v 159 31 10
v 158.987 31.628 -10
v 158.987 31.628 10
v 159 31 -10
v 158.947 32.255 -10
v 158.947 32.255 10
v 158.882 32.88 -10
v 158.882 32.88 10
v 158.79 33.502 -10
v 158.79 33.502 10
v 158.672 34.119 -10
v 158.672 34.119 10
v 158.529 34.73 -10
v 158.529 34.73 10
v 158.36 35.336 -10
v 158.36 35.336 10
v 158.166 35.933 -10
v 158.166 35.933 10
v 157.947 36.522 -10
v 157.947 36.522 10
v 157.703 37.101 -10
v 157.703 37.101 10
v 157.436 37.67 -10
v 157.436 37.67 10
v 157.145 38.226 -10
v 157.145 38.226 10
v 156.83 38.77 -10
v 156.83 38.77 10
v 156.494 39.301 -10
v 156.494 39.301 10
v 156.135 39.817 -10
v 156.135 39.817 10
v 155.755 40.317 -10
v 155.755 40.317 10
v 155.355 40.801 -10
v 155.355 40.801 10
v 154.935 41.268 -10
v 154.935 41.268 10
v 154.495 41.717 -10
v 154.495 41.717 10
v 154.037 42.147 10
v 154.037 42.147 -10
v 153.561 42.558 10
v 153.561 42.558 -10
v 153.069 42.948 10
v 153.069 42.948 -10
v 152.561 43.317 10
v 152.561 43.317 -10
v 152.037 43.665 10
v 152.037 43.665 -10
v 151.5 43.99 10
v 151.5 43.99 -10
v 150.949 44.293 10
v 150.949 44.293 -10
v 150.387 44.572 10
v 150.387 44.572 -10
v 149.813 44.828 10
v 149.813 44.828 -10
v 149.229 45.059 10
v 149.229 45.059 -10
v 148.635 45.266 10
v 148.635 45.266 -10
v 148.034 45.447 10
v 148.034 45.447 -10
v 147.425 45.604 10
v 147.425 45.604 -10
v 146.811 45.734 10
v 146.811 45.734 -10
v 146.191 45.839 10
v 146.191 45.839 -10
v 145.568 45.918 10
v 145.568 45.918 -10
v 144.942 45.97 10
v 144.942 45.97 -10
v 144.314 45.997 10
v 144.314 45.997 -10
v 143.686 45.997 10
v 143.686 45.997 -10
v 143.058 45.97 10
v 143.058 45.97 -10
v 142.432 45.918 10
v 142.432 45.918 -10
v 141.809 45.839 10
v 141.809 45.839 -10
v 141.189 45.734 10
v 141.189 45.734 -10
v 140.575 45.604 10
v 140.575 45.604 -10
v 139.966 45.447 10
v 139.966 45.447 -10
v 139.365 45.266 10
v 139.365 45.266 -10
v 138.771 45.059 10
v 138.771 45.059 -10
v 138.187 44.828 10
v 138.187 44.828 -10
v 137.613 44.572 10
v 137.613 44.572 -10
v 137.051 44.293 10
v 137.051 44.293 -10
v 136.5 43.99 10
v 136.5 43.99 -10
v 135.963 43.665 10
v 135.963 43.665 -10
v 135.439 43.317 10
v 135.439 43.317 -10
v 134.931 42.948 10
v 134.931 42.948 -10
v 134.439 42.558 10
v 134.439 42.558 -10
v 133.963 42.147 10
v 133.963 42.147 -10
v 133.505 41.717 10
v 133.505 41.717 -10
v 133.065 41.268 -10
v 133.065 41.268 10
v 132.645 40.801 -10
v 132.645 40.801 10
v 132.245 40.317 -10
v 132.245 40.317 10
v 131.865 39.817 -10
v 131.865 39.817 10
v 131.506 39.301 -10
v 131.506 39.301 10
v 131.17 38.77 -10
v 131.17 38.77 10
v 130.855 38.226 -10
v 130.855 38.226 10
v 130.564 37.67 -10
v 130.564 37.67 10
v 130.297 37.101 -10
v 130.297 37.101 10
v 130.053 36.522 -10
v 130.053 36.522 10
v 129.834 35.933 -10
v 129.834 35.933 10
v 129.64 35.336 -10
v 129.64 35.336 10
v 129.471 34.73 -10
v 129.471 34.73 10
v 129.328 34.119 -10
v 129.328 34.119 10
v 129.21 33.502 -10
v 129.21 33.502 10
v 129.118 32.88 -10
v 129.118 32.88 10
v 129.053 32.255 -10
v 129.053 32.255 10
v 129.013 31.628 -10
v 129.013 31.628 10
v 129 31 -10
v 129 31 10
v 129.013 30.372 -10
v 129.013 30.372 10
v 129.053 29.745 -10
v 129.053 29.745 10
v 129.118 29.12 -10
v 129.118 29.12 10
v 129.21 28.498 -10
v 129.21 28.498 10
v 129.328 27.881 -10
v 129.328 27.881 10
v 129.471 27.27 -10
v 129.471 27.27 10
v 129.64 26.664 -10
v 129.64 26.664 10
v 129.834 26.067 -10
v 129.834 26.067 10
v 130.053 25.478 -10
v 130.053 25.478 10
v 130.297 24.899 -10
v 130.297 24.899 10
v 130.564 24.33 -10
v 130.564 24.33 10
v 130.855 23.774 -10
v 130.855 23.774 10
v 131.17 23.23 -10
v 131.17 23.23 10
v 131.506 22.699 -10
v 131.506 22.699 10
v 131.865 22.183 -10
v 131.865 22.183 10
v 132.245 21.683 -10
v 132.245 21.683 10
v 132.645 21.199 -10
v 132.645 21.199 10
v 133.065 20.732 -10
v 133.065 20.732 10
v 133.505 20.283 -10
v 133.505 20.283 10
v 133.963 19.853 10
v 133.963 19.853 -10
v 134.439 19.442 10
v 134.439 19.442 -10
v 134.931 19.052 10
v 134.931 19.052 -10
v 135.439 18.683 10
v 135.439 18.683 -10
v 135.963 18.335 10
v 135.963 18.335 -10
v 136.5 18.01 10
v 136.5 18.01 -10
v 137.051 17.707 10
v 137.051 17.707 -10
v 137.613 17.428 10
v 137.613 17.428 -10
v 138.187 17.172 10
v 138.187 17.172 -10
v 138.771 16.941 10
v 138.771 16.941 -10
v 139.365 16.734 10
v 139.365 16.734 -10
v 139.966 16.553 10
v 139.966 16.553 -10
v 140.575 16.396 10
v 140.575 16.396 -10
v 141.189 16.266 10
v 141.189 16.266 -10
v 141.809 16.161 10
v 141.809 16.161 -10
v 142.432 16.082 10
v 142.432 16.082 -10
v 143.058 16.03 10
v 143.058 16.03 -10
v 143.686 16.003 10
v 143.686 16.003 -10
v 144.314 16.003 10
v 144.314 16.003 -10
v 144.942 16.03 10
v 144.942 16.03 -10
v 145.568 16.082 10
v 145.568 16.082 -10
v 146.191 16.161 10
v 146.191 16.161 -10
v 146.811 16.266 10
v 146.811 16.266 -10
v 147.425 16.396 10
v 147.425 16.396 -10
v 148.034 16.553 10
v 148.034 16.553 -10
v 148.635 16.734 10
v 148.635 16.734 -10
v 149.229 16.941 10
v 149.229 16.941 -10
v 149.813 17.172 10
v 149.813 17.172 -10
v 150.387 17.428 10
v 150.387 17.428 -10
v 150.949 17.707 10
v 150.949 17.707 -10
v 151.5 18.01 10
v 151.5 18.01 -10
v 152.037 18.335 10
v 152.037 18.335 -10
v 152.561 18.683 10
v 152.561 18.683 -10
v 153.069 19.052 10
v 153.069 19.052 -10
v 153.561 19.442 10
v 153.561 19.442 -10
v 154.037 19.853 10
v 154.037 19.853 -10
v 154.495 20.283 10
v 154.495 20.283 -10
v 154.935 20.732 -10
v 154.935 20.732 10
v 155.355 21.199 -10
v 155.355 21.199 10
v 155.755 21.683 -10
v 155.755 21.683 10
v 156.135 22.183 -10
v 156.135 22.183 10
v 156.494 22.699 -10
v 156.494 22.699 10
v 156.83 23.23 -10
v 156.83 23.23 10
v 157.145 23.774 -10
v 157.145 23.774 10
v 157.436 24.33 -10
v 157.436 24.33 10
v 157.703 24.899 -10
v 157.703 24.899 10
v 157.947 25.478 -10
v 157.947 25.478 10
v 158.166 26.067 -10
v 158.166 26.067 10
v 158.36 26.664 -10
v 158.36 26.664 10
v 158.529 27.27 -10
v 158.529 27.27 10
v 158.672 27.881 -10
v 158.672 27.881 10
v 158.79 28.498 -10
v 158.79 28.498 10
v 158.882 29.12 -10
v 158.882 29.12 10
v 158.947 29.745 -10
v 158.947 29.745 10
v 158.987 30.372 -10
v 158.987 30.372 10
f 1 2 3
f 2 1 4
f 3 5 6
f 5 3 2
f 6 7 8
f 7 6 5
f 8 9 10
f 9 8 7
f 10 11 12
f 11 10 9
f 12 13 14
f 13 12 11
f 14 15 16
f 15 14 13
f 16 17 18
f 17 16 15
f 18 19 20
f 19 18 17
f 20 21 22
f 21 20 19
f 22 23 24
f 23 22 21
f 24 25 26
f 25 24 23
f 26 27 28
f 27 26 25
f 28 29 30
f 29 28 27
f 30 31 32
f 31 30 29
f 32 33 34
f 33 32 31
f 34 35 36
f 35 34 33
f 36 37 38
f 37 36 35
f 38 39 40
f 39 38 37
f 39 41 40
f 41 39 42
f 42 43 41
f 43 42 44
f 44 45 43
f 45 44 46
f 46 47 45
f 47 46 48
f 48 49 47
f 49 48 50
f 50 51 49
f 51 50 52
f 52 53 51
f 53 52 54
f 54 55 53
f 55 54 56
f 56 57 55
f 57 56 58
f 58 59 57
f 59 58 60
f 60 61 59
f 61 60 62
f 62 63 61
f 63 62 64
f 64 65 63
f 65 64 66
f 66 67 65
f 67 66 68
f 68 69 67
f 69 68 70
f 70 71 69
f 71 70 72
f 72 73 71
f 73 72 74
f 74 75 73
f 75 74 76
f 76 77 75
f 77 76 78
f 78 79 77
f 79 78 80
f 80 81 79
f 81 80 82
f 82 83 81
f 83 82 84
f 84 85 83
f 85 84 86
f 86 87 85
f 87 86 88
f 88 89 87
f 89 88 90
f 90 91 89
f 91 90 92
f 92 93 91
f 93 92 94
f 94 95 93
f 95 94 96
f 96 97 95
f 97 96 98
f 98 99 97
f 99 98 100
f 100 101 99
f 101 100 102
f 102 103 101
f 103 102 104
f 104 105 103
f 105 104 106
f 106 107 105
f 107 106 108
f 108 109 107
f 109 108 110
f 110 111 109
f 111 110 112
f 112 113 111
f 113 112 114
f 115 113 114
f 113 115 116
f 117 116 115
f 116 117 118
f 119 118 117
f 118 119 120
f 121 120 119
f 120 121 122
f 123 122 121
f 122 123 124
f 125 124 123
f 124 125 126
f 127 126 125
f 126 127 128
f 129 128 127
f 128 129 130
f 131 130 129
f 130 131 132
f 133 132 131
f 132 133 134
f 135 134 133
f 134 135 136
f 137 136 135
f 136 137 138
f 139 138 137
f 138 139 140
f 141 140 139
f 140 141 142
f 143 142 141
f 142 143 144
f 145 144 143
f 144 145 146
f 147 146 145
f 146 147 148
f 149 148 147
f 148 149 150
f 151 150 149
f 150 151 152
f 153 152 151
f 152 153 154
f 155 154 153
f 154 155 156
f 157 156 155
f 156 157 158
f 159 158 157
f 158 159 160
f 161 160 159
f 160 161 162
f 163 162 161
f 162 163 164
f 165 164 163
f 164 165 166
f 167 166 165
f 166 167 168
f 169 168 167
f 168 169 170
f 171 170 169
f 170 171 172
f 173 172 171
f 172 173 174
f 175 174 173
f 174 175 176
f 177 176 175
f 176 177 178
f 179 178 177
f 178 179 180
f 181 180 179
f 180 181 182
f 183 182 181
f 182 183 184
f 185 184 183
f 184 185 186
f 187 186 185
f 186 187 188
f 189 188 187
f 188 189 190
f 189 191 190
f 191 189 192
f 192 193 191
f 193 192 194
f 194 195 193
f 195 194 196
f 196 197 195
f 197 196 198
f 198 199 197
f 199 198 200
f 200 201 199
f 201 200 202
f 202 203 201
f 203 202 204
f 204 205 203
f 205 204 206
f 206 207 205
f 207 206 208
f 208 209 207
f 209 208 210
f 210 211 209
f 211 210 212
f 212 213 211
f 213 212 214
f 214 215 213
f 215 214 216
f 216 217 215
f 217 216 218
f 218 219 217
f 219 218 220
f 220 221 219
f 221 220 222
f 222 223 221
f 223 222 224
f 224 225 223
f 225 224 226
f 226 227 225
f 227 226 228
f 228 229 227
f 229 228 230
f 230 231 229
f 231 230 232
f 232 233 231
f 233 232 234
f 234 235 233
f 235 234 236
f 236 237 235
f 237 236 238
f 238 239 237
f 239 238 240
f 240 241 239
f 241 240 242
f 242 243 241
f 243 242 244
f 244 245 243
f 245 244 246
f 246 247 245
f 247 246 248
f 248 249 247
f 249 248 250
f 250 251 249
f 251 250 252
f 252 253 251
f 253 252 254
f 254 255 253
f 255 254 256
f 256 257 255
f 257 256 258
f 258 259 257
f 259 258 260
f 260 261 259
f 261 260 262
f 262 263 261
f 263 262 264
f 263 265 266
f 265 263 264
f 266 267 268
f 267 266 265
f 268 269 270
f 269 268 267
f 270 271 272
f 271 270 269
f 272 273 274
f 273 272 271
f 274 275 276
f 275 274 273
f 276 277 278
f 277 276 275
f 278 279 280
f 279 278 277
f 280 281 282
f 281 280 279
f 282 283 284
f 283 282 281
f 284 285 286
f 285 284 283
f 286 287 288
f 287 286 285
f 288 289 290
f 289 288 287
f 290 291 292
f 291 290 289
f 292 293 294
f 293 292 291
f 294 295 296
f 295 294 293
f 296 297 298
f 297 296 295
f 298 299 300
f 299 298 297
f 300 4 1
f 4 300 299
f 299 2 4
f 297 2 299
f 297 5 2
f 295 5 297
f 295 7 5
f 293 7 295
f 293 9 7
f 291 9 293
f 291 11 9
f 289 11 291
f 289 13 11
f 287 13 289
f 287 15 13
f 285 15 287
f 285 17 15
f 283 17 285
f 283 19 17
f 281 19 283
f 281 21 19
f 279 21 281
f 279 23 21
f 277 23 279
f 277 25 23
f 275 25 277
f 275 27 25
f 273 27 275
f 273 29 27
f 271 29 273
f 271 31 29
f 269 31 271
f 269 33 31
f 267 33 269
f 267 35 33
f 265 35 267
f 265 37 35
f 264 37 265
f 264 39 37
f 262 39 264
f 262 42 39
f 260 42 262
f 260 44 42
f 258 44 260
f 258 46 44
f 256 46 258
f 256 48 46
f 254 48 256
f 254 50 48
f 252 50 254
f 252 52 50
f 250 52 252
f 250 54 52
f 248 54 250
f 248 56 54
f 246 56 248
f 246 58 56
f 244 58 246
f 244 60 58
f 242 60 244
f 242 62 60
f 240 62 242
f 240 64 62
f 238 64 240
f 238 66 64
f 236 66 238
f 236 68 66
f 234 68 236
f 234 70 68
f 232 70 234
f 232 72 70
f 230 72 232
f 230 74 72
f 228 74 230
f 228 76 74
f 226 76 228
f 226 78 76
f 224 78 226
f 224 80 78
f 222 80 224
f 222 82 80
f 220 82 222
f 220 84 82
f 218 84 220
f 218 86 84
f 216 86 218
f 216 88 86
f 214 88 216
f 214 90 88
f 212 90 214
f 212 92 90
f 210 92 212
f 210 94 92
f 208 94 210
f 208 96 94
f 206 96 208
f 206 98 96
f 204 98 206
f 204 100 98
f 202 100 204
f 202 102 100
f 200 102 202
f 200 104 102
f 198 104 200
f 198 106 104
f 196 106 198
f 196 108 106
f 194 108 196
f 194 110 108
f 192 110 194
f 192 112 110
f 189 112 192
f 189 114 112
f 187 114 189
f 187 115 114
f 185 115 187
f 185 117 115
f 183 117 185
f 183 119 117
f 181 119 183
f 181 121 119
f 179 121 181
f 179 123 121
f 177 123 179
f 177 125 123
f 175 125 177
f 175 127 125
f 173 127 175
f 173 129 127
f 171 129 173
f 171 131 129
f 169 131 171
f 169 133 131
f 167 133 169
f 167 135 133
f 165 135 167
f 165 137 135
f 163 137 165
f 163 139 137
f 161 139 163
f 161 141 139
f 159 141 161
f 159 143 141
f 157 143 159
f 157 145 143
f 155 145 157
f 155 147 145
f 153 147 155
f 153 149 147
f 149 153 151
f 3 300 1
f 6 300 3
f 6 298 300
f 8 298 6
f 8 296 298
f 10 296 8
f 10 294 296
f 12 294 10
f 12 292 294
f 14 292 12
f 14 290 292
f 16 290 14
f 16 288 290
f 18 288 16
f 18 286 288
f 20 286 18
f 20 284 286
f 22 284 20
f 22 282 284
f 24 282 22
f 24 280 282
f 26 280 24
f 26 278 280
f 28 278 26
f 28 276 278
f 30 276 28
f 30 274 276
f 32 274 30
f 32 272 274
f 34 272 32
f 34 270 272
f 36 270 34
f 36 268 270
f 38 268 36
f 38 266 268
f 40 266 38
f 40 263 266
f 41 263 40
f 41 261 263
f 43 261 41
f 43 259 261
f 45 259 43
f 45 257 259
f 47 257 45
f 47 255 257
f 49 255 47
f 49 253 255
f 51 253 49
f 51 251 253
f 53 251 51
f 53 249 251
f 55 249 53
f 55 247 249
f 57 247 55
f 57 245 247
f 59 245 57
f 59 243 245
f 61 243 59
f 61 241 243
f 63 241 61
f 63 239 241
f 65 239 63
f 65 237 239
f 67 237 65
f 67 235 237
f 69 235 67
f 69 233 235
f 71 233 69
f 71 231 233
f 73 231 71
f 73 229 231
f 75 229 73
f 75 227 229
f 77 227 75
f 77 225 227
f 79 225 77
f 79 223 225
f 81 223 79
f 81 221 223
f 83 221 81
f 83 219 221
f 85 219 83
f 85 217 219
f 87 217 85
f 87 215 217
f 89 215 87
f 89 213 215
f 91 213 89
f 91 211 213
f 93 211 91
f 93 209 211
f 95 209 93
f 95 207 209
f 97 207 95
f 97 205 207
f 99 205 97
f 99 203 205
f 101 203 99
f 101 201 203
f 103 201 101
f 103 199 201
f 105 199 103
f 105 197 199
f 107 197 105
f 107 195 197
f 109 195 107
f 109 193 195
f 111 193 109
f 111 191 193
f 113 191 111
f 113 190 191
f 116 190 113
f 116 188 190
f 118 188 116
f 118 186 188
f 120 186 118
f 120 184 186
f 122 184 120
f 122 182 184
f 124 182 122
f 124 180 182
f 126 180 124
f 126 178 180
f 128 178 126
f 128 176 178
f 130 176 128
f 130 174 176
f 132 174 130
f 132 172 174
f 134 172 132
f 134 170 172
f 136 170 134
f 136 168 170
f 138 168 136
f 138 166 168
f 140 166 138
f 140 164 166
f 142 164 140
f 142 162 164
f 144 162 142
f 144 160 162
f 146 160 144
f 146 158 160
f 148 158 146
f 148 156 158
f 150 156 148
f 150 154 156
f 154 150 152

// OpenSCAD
$fn = 150;

translate([144, 31, 0])
rotate([0, 0, 0])
cylinder(20, 15, 15, true);
